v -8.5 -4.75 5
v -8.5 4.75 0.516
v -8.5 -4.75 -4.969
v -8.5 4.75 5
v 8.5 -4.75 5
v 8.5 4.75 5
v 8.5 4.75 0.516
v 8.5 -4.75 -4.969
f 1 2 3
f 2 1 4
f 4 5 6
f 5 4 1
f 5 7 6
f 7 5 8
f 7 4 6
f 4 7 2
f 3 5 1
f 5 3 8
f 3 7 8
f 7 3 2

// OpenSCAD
// Definition size of housing
// **************************

width_x      = 17;     
depth_y      = 9.5;    
height_z     = 10;


difference () {

  cube ( [width_x, depth_y, height_z], center = true );
  translate([0,0,-8]) rotate ([30,0,0]) cube ( [width_x+1, depth_y+10, 10], center = true );
   

};
